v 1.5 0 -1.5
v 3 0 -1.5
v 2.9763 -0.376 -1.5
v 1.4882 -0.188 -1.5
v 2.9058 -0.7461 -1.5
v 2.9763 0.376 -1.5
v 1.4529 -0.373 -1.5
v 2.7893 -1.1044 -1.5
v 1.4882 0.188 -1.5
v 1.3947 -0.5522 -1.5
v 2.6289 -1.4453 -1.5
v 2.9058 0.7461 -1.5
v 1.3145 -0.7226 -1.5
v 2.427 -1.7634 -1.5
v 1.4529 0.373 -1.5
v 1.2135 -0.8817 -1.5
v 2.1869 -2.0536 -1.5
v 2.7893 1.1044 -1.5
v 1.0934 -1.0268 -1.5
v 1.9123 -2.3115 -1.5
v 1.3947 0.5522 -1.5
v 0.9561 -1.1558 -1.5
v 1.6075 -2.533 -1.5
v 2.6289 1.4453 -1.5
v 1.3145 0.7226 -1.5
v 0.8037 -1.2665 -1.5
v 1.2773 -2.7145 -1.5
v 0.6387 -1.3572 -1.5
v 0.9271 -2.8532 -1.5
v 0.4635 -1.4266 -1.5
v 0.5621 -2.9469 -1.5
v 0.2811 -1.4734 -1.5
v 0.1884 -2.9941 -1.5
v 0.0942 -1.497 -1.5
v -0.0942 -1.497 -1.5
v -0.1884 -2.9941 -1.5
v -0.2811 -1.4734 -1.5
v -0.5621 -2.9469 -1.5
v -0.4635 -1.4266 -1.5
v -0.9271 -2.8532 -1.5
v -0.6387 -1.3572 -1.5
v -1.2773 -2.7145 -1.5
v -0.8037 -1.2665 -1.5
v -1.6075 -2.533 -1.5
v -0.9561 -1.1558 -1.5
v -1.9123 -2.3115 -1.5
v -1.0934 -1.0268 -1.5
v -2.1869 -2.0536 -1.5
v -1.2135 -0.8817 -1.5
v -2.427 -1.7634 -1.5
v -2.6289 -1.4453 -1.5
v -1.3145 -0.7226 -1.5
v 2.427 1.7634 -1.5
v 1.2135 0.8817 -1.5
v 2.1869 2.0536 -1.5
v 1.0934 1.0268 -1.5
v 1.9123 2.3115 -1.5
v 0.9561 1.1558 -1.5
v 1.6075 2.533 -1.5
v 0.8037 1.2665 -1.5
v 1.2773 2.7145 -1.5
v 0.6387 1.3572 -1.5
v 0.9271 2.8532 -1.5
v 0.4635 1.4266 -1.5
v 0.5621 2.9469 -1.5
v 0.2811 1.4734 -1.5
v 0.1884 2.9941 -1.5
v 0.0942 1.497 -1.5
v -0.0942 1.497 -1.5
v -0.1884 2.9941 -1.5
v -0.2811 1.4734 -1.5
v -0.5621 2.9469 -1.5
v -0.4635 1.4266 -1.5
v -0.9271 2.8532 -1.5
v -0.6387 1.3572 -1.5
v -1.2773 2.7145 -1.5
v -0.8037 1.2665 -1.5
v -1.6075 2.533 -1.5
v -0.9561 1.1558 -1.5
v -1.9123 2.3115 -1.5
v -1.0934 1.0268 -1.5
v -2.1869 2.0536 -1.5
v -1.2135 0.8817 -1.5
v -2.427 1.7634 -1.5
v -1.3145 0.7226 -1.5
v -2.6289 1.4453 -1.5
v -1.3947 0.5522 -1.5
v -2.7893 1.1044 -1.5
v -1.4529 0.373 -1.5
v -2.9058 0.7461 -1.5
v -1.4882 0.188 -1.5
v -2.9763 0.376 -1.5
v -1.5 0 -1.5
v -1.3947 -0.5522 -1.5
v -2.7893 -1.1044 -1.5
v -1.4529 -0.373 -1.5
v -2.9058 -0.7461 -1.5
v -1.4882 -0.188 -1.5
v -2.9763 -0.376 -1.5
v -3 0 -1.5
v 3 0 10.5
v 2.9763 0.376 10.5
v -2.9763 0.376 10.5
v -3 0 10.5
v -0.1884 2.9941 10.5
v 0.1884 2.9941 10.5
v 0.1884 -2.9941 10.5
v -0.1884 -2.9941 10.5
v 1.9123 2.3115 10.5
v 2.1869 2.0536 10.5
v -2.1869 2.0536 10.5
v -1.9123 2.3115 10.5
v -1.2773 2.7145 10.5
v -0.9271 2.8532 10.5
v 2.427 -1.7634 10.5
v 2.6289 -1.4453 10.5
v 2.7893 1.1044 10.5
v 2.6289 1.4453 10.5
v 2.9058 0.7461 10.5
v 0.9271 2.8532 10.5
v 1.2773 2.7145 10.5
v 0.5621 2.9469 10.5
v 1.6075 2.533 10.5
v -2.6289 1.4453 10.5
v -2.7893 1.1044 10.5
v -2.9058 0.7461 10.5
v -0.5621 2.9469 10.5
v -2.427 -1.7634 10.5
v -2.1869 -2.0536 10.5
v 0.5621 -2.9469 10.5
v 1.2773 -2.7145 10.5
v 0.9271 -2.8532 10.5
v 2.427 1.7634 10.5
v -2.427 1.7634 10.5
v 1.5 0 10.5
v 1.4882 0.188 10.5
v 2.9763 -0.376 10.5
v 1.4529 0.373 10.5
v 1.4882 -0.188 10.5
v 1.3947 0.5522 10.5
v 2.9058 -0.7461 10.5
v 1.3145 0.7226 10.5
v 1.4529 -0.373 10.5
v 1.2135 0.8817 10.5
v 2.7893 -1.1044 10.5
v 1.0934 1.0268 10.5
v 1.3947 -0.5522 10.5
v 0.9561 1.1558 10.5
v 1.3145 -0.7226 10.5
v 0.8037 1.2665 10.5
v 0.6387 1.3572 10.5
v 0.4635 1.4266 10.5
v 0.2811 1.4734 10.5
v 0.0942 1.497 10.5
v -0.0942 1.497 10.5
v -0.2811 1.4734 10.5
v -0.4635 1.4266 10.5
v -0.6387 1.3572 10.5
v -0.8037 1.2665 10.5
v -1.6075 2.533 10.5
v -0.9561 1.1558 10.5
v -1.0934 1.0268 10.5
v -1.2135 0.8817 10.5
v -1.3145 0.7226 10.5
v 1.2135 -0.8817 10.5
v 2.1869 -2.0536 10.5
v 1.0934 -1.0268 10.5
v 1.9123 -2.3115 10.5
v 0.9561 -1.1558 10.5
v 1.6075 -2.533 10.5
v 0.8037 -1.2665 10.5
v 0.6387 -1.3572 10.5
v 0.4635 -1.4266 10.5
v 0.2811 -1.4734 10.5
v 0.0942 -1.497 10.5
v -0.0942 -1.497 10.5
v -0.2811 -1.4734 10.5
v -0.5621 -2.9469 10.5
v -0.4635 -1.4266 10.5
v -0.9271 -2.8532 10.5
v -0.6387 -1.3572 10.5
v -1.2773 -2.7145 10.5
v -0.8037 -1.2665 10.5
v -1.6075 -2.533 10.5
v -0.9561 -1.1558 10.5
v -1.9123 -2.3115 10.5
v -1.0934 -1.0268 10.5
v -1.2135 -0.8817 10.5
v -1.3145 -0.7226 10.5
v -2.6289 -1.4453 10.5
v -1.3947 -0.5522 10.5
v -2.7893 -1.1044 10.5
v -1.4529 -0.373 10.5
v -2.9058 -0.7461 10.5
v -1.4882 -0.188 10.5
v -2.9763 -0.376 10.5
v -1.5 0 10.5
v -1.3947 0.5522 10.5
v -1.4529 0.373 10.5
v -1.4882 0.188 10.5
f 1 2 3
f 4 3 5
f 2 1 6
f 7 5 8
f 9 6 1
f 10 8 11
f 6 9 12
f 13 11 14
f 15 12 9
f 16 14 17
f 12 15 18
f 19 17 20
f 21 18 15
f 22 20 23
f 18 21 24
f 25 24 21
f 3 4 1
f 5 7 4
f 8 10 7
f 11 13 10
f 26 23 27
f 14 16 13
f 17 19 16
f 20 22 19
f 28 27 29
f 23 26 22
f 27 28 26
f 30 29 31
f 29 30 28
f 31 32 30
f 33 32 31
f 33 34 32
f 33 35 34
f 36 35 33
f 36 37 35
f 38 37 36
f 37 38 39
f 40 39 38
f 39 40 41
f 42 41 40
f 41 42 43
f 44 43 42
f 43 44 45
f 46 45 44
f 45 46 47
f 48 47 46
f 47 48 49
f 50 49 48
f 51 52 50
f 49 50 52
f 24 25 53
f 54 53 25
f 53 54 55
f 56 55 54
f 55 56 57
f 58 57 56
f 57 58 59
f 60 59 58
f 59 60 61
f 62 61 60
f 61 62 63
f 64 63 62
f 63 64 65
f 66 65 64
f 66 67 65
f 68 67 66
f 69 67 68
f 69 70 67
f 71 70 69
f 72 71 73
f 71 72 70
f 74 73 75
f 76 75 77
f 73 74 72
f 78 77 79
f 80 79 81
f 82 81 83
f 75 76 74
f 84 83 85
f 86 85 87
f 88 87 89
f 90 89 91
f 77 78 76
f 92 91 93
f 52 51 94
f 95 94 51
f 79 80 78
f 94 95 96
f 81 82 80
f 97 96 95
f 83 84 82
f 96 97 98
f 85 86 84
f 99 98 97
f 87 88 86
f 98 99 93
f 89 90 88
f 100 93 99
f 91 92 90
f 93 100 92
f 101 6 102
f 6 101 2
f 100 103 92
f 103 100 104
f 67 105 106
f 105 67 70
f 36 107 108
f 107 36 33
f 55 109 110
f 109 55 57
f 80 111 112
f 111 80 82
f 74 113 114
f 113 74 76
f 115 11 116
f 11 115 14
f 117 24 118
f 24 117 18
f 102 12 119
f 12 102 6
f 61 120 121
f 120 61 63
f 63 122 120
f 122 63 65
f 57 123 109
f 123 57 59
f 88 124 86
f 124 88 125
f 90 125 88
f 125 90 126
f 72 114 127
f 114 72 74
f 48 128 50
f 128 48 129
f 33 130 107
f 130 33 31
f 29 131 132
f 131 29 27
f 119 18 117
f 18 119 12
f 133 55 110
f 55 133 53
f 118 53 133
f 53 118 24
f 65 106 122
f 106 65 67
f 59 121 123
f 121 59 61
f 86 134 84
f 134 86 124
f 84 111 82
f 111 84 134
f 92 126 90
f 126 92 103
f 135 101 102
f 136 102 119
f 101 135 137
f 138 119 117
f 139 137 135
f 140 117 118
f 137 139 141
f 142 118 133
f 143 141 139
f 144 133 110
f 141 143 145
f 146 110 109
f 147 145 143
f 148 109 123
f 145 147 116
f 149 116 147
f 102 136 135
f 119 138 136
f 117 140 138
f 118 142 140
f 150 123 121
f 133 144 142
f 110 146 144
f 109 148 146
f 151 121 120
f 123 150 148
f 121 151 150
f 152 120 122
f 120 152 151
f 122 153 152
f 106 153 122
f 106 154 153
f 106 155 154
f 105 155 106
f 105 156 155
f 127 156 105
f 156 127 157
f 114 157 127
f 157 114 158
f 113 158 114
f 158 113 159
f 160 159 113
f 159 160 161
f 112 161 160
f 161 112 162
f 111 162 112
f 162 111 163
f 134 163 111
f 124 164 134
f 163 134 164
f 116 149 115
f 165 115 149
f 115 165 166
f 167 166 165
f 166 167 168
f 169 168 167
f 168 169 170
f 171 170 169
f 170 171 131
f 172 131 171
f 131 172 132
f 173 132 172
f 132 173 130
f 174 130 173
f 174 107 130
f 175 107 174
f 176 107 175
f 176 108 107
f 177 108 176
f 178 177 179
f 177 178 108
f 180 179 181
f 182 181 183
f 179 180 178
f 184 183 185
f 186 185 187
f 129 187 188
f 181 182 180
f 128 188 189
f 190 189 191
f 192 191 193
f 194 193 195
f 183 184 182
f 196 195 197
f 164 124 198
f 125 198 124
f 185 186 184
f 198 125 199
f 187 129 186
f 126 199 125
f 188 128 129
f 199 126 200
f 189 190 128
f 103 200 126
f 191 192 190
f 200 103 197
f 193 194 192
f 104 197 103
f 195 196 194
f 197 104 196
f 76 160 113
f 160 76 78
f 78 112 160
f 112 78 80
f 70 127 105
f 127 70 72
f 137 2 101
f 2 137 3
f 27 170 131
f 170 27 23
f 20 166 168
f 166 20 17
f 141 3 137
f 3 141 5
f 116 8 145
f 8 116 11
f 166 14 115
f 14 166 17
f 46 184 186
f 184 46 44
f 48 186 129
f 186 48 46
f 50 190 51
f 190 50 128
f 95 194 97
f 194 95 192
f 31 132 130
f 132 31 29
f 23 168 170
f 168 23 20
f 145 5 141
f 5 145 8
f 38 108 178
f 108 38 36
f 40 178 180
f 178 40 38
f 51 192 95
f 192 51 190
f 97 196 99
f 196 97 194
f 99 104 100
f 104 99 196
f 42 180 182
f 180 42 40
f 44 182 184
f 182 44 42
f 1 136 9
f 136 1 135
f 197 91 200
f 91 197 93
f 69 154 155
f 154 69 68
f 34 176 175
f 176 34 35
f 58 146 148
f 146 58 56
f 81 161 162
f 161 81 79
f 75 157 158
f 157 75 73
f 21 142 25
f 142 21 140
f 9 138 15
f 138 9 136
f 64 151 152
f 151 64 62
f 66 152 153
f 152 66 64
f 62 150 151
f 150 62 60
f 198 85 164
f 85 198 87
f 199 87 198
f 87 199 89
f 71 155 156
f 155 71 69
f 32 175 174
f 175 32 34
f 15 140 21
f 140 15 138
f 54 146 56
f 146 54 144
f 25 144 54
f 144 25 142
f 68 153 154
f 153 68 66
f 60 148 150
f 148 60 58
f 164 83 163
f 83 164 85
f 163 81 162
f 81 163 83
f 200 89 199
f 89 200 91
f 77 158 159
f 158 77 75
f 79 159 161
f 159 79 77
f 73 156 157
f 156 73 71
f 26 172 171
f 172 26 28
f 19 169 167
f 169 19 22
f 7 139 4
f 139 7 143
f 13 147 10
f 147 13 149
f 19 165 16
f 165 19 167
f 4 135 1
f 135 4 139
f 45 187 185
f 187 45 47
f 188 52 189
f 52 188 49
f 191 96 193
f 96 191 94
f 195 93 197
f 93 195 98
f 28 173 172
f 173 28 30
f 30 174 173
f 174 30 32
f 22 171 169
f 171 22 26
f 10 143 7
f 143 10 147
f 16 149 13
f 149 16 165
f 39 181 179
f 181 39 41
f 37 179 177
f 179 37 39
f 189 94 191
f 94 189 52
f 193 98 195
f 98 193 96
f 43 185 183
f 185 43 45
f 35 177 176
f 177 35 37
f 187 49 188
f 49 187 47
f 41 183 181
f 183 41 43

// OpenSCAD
$fn = 50;


difference() {
	union() {
		translate(v = [0, 0, -1.5000000000]) {
			rotate(a = [0, 0, 0]) {
				cylinder(h = 3, r = 1.0000000000);
			}
		}
		translate(v = [0, 0, -1.5000000000]) {
			rotate(a = [0, 0, 0]) {
				cylinder(h = 12, r = 3.0000000000);
			}
		}
	}
	union() {
		translate(v = [0, 0, -125.0000000000]) {
			rotate(a = [0, 0, 0]) {
				cylinder(h = 250, r = 1.5000000000);
			}
		}
	}
}
